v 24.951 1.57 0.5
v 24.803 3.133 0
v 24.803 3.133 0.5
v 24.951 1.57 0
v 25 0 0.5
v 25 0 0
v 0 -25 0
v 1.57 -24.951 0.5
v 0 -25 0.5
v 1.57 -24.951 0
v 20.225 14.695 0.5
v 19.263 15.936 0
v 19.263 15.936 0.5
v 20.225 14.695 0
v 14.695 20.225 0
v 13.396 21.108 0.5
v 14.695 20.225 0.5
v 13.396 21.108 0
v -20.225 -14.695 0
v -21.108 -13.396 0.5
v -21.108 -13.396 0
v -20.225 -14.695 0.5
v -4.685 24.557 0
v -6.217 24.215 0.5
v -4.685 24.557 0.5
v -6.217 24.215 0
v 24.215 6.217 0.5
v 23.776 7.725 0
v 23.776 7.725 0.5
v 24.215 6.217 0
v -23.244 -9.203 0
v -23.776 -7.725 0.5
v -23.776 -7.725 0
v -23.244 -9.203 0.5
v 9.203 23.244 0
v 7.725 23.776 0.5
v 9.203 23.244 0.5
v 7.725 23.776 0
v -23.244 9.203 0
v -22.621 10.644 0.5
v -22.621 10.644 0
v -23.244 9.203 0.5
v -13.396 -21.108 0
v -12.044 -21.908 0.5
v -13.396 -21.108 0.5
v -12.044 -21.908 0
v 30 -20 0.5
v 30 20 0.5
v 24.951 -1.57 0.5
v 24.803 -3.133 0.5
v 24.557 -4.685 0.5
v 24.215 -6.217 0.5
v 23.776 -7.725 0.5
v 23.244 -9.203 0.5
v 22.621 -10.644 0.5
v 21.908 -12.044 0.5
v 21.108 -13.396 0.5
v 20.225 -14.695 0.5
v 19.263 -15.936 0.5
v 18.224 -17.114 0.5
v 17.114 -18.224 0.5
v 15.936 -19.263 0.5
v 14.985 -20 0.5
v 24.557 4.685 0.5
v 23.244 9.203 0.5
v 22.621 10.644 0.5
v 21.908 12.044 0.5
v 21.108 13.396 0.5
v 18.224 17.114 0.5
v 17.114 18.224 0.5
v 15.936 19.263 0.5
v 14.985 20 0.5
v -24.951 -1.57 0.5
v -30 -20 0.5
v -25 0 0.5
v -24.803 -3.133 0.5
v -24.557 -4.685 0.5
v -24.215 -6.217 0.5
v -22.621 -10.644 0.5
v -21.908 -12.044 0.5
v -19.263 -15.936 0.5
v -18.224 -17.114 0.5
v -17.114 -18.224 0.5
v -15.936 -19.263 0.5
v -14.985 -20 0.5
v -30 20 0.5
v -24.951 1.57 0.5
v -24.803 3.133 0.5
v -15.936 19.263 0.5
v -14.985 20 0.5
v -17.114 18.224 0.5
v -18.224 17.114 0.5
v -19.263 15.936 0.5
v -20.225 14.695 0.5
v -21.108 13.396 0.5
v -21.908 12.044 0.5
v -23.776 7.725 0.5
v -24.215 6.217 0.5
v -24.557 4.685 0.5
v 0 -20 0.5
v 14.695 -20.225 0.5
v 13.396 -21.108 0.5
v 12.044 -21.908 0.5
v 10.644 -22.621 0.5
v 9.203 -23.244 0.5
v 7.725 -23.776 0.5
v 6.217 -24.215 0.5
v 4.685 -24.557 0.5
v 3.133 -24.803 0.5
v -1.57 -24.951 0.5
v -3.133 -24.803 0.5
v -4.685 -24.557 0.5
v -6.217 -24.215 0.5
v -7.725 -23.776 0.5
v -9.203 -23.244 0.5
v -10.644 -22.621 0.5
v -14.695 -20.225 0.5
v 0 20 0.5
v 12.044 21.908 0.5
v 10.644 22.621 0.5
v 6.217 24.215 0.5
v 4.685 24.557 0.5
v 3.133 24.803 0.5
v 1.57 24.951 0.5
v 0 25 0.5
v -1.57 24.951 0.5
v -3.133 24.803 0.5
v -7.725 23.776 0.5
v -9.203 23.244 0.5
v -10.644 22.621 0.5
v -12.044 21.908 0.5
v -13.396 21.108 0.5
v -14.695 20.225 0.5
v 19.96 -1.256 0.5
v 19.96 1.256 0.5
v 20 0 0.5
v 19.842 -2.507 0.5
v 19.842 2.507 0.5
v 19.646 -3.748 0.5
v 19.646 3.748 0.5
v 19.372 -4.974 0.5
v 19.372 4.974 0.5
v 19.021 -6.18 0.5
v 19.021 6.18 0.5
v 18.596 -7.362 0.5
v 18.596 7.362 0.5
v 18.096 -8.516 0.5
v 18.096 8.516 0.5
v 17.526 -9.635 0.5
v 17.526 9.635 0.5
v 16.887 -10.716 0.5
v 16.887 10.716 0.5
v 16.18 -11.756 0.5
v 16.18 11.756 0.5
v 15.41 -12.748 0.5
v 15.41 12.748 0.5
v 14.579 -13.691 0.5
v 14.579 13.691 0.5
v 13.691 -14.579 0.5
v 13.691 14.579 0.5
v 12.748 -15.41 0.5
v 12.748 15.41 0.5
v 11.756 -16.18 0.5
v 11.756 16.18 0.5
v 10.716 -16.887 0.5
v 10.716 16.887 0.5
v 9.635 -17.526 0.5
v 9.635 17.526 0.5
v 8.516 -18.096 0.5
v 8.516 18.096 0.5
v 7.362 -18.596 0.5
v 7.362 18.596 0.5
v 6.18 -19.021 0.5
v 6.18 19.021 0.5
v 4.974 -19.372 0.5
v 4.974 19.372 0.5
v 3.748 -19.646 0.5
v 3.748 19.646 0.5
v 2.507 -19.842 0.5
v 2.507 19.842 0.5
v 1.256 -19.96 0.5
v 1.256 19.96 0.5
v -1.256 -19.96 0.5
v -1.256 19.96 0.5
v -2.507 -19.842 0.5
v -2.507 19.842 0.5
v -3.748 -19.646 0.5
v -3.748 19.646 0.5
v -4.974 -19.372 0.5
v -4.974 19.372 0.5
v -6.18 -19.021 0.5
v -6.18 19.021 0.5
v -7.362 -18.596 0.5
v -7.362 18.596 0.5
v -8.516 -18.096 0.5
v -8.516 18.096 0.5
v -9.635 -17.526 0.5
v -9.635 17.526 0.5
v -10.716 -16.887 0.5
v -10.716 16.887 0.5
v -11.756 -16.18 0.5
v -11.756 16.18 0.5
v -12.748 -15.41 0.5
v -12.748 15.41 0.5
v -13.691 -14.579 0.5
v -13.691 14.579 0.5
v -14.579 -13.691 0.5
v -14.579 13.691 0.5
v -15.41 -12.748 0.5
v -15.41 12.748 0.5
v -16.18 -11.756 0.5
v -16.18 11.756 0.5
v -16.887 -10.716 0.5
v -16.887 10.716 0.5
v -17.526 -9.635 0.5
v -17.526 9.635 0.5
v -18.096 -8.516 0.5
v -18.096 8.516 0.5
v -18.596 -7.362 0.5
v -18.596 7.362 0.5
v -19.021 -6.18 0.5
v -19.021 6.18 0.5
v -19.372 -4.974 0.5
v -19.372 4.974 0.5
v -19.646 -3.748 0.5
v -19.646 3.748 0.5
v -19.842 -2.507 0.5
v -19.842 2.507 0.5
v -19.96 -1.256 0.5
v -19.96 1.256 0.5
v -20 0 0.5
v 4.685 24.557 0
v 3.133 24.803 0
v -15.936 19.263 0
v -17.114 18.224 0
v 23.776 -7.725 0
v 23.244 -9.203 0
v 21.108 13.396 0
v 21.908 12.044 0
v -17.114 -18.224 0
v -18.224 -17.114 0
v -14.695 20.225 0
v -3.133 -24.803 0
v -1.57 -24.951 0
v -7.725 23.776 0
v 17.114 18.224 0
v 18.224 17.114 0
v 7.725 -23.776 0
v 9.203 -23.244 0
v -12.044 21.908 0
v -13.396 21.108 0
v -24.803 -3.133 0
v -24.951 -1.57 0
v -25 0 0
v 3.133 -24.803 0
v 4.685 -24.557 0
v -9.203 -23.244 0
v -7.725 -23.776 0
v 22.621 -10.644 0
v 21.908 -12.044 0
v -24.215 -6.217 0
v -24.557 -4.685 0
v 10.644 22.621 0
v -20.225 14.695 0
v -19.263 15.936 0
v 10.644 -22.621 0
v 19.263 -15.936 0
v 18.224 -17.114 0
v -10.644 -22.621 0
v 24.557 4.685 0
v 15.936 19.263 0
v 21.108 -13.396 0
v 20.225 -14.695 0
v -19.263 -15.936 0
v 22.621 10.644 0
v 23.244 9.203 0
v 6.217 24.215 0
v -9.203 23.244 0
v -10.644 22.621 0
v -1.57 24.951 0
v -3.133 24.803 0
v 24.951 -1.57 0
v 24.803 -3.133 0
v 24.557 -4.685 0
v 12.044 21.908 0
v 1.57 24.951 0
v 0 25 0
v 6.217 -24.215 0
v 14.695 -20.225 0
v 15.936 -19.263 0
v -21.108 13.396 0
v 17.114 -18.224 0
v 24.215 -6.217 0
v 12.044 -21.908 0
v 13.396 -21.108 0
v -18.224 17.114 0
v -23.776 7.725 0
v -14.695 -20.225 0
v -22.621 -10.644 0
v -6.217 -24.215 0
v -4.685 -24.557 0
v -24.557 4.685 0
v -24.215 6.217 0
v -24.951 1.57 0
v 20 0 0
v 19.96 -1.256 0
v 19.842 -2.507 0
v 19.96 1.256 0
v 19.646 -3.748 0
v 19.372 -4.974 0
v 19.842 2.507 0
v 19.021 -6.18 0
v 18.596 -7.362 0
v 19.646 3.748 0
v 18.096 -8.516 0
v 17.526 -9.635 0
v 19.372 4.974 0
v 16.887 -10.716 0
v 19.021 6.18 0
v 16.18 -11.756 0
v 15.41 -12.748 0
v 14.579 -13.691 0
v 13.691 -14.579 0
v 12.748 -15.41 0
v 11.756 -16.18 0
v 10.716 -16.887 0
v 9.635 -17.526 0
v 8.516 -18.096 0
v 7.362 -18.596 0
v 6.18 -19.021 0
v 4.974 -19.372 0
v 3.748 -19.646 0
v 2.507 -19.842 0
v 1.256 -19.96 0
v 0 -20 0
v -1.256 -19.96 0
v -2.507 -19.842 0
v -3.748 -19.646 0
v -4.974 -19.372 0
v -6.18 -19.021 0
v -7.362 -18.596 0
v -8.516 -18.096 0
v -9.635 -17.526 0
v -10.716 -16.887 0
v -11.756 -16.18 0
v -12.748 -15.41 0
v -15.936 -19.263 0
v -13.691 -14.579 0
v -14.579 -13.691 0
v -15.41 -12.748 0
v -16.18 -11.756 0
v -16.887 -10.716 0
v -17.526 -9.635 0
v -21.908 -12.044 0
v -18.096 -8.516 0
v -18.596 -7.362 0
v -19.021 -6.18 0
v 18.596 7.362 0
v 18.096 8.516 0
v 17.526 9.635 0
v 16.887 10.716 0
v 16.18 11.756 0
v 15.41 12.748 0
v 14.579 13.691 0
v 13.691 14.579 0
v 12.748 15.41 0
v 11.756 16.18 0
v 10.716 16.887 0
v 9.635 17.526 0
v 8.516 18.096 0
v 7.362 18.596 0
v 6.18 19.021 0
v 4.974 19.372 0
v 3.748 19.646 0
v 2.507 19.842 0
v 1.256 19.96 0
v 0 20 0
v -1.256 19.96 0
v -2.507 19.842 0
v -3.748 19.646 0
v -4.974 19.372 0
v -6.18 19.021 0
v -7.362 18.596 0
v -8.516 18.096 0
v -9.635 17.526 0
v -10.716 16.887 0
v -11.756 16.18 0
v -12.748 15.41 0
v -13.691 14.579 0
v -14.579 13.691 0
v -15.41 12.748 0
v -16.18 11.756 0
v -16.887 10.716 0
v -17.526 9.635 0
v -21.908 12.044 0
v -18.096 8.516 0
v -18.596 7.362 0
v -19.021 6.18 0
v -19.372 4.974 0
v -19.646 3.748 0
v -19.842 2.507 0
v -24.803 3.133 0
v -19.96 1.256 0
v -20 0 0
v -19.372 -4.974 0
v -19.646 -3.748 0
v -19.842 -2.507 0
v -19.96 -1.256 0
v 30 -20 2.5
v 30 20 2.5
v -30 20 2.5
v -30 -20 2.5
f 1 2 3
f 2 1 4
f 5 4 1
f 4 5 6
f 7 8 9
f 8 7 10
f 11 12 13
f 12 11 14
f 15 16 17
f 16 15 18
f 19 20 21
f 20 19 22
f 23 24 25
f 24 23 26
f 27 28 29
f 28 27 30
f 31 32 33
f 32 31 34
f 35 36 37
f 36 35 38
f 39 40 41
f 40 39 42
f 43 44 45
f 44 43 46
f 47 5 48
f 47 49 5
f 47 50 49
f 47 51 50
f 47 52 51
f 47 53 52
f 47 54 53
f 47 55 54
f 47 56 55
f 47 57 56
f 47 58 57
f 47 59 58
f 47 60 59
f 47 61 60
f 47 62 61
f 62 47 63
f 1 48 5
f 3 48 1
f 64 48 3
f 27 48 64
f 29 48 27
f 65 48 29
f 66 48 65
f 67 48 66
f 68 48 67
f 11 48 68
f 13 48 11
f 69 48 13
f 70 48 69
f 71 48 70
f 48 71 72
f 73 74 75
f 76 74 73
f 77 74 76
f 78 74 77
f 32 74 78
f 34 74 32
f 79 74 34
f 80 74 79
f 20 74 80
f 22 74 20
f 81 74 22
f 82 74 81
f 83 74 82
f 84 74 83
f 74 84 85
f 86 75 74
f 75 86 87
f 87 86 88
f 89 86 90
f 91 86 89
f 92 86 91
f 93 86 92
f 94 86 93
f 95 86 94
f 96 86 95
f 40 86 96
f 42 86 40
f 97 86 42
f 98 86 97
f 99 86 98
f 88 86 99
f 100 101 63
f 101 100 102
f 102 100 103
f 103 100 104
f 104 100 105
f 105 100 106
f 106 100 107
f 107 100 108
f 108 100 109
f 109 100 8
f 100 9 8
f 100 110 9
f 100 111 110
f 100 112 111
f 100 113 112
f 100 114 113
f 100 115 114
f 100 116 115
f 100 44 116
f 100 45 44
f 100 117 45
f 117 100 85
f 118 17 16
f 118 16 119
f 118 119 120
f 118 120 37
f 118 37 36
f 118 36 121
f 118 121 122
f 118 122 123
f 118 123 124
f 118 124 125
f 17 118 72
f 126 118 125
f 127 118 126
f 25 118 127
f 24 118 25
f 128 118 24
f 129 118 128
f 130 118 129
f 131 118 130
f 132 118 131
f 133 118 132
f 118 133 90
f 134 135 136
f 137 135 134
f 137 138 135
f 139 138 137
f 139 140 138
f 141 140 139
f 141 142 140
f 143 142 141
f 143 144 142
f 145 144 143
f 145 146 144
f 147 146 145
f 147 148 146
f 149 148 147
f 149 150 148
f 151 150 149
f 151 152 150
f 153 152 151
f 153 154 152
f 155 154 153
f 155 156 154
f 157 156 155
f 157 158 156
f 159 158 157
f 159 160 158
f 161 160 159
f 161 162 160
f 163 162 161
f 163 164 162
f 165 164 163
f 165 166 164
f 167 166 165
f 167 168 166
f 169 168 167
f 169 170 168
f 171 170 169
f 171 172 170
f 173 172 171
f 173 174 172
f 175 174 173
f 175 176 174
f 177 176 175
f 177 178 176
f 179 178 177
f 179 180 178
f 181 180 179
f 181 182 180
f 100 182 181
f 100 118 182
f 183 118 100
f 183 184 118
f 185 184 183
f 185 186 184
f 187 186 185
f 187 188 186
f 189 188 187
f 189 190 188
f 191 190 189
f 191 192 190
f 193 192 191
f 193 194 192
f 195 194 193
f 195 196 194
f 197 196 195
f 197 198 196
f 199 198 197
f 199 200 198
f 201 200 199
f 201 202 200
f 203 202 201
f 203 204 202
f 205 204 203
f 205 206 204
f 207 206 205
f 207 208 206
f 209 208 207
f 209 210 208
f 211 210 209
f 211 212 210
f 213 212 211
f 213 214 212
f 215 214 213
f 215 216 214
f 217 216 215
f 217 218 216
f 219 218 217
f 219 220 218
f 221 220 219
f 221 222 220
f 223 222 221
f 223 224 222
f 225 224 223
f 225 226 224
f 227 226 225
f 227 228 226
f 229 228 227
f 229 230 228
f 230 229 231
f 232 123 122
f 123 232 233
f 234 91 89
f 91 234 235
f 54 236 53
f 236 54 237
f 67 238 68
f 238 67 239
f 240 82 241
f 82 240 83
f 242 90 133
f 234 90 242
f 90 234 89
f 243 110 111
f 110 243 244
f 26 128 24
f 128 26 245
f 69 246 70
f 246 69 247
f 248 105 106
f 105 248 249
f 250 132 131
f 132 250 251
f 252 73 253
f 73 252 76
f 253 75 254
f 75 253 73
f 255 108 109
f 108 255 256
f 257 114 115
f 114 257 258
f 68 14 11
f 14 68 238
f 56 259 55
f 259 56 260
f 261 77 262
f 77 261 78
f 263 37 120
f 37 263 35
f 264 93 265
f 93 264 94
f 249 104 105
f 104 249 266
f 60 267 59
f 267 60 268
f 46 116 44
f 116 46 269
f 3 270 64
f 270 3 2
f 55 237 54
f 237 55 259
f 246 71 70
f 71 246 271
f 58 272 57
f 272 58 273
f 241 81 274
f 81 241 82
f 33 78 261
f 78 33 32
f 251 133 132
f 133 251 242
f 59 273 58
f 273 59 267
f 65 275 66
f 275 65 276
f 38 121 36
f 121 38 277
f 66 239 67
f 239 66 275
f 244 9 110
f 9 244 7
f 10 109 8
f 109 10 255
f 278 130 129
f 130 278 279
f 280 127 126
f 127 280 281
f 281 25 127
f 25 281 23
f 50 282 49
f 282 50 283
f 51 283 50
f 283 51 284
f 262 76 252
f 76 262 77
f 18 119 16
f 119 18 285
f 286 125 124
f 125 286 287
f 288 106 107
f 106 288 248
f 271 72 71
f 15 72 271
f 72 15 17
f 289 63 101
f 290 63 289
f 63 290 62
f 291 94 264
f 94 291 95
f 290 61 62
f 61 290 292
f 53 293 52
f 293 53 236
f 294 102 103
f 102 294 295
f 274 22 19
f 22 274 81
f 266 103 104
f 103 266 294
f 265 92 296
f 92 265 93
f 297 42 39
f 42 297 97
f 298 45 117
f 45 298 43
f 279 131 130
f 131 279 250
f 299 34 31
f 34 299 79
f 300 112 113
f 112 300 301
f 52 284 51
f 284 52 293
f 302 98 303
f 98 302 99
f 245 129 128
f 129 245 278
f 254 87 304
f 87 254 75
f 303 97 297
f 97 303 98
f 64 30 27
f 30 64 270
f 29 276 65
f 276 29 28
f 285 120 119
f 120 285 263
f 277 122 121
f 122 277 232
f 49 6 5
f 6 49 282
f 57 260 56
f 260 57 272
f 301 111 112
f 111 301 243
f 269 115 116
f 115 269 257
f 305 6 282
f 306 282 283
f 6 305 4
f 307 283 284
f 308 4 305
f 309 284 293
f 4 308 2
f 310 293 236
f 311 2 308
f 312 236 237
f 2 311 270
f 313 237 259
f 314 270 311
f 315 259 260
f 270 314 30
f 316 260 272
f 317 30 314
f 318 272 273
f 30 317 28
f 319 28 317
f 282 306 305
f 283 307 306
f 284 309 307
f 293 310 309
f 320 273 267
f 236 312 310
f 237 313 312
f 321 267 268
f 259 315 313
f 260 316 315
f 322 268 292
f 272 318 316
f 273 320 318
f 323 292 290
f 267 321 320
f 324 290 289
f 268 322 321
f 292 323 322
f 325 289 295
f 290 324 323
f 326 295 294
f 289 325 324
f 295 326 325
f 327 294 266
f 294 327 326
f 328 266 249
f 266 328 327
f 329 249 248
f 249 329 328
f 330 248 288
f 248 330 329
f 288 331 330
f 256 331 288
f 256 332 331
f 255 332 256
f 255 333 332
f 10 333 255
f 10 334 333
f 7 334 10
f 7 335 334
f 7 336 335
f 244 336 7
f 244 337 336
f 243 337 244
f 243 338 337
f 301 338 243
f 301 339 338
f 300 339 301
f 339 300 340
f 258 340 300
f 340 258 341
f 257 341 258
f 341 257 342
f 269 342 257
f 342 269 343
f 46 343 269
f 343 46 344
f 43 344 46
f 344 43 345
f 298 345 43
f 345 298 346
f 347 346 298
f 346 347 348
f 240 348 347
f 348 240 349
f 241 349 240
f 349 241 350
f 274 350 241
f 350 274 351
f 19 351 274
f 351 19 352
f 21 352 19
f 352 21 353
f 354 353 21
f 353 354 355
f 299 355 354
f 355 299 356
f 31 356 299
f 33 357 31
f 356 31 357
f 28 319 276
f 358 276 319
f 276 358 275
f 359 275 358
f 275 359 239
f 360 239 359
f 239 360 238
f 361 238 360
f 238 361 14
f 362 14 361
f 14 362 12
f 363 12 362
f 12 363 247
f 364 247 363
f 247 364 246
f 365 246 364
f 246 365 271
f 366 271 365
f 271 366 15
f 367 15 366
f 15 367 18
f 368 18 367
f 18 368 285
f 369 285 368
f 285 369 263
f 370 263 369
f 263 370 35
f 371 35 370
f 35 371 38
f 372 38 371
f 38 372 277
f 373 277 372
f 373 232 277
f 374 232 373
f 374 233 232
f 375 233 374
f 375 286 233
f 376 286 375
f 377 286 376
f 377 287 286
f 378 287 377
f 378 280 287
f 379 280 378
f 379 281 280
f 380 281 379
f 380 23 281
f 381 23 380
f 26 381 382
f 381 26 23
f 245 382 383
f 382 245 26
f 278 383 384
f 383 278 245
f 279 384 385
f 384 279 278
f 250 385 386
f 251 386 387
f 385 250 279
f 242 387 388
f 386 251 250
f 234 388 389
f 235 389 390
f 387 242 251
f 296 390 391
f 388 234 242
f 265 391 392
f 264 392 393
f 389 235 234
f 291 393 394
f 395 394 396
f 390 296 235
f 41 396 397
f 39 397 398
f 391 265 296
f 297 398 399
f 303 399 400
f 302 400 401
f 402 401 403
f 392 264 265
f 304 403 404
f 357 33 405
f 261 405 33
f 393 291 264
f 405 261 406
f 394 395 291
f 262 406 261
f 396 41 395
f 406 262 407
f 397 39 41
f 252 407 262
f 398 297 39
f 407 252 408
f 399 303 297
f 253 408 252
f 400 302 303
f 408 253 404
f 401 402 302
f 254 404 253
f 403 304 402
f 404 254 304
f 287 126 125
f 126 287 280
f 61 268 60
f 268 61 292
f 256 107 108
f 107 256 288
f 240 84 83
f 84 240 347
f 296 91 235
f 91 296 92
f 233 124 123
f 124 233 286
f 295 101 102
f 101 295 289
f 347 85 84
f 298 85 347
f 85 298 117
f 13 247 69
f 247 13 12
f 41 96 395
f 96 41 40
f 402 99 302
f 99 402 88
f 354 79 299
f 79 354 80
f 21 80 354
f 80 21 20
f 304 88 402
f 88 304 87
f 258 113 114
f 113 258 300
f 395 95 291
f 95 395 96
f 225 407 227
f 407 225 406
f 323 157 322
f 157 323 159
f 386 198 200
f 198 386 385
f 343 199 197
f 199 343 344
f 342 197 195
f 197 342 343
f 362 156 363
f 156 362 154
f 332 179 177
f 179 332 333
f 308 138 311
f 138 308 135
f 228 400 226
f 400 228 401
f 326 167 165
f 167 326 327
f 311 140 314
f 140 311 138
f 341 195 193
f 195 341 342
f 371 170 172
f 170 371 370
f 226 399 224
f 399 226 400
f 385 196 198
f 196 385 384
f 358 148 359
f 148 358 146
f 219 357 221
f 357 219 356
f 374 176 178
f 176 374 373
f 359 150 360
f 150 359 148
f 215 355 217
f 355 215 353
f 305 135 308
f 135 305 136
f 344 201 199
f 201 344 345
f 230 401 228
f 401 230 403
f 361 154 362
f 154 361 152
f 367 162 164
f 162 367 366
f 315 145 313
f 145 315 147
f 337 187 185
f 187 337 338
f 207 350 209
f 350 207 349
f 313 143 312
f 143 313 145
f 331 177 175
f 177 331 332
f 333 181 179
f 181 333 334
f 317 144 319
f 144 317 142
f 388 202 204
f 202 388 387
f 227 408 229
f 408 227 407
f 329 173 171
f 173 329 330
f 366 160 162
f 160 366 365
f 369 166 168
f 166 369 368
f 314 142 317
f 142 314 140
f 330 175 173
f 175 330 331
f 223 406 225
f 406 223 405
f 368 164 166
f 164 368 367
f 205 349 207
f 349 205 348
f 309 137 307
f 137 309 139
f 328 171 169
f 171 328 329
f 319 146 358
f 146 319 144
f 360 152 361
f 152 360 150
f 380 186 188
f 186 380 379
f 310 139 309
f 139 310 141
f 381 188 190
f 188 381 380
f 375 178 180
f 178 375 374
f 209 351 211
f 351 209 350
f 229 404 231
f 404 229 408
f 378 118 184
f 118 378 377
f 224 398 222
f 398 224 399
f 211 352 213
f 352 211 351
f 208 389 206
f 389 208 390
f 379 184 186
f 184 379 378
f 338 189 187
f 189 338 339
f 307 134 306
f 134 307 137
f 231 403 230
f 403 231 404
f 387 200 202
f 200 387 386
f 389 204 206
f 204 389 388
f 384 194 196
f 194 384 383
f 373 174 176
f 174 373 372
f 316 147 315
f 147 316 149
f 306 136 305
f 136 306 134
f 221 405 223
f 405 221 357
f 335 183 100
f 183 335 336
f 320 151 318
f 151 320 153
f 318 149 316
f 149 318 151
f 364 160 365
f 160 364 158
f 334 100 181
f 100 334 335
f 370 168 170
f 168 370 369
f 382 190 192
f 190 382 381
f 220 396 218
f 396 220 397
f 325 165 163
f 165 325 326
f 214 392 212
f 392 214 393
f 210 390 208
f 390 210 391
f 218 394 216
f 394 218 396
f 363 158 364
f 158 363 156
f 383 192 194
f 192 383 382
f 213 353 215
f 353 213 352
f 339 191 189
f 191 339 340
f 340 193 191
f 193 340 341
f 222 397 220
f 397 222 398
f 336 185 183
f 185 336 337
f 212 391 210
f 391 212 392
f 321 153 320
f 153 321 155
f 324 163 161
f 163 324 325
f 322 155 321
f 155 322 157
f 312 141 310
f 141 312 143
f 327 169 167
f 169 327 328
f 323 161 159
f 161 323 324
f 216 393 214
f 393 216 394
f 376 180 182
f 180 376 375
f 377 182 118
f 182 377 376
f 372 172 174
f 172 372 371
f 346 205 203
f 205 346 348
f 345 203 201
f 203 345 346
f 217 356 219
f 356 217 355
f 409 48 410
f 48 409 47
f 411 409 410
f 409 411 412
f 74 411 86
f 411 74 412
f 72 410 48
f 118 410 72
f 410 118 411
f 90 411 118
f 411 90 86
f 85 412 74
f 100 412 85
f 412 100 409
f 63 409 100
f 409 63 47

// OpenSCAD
// Spacer Ring Parameters
spacer_ring_outer_diameter = 50; // Outer diameter of the ring
spacer_ring_inner_diameter = 40; // Inner diameter of the ring
spacer_ring_thickness = 0.5; // Reduced thickness to match the original model's flat and thin profile

// Spacer Ring Component
module spacer_ring() {
    difference() {
        // Outer cylinder
        cylinder(d=spacer_ring_outer_diameter, h=spacer_ring_thickness, $fn=100);
        // Inner cylinder (hole)
        translate([0, 0, -1]) // Ensure the hole is centered
        cylinder(d=spacer_ring_inner_diameter, h=spacer_ring_thickness + 2, $fn=100);
    }
}

// Flange Plate Parameters
flange_plate_width = 60; // Adjusted width to match the proportions of the original flange plate
flange_plate_height = 40; // Height of the flange plate
flange_plate_thickness = 2; // Thickness of the flange plate

// Flange Plate Component
module flange_plate() {
    cube([flange_plate_width, flange_plate_height, flange_plate_thickness], center=true);
}

// Render Spacer Ring
spacer_ring();

// Render Flange Plate
translate([0, 0, spacer_ring_thickness + flange_plate_thickness / 2])
flange_plate();
